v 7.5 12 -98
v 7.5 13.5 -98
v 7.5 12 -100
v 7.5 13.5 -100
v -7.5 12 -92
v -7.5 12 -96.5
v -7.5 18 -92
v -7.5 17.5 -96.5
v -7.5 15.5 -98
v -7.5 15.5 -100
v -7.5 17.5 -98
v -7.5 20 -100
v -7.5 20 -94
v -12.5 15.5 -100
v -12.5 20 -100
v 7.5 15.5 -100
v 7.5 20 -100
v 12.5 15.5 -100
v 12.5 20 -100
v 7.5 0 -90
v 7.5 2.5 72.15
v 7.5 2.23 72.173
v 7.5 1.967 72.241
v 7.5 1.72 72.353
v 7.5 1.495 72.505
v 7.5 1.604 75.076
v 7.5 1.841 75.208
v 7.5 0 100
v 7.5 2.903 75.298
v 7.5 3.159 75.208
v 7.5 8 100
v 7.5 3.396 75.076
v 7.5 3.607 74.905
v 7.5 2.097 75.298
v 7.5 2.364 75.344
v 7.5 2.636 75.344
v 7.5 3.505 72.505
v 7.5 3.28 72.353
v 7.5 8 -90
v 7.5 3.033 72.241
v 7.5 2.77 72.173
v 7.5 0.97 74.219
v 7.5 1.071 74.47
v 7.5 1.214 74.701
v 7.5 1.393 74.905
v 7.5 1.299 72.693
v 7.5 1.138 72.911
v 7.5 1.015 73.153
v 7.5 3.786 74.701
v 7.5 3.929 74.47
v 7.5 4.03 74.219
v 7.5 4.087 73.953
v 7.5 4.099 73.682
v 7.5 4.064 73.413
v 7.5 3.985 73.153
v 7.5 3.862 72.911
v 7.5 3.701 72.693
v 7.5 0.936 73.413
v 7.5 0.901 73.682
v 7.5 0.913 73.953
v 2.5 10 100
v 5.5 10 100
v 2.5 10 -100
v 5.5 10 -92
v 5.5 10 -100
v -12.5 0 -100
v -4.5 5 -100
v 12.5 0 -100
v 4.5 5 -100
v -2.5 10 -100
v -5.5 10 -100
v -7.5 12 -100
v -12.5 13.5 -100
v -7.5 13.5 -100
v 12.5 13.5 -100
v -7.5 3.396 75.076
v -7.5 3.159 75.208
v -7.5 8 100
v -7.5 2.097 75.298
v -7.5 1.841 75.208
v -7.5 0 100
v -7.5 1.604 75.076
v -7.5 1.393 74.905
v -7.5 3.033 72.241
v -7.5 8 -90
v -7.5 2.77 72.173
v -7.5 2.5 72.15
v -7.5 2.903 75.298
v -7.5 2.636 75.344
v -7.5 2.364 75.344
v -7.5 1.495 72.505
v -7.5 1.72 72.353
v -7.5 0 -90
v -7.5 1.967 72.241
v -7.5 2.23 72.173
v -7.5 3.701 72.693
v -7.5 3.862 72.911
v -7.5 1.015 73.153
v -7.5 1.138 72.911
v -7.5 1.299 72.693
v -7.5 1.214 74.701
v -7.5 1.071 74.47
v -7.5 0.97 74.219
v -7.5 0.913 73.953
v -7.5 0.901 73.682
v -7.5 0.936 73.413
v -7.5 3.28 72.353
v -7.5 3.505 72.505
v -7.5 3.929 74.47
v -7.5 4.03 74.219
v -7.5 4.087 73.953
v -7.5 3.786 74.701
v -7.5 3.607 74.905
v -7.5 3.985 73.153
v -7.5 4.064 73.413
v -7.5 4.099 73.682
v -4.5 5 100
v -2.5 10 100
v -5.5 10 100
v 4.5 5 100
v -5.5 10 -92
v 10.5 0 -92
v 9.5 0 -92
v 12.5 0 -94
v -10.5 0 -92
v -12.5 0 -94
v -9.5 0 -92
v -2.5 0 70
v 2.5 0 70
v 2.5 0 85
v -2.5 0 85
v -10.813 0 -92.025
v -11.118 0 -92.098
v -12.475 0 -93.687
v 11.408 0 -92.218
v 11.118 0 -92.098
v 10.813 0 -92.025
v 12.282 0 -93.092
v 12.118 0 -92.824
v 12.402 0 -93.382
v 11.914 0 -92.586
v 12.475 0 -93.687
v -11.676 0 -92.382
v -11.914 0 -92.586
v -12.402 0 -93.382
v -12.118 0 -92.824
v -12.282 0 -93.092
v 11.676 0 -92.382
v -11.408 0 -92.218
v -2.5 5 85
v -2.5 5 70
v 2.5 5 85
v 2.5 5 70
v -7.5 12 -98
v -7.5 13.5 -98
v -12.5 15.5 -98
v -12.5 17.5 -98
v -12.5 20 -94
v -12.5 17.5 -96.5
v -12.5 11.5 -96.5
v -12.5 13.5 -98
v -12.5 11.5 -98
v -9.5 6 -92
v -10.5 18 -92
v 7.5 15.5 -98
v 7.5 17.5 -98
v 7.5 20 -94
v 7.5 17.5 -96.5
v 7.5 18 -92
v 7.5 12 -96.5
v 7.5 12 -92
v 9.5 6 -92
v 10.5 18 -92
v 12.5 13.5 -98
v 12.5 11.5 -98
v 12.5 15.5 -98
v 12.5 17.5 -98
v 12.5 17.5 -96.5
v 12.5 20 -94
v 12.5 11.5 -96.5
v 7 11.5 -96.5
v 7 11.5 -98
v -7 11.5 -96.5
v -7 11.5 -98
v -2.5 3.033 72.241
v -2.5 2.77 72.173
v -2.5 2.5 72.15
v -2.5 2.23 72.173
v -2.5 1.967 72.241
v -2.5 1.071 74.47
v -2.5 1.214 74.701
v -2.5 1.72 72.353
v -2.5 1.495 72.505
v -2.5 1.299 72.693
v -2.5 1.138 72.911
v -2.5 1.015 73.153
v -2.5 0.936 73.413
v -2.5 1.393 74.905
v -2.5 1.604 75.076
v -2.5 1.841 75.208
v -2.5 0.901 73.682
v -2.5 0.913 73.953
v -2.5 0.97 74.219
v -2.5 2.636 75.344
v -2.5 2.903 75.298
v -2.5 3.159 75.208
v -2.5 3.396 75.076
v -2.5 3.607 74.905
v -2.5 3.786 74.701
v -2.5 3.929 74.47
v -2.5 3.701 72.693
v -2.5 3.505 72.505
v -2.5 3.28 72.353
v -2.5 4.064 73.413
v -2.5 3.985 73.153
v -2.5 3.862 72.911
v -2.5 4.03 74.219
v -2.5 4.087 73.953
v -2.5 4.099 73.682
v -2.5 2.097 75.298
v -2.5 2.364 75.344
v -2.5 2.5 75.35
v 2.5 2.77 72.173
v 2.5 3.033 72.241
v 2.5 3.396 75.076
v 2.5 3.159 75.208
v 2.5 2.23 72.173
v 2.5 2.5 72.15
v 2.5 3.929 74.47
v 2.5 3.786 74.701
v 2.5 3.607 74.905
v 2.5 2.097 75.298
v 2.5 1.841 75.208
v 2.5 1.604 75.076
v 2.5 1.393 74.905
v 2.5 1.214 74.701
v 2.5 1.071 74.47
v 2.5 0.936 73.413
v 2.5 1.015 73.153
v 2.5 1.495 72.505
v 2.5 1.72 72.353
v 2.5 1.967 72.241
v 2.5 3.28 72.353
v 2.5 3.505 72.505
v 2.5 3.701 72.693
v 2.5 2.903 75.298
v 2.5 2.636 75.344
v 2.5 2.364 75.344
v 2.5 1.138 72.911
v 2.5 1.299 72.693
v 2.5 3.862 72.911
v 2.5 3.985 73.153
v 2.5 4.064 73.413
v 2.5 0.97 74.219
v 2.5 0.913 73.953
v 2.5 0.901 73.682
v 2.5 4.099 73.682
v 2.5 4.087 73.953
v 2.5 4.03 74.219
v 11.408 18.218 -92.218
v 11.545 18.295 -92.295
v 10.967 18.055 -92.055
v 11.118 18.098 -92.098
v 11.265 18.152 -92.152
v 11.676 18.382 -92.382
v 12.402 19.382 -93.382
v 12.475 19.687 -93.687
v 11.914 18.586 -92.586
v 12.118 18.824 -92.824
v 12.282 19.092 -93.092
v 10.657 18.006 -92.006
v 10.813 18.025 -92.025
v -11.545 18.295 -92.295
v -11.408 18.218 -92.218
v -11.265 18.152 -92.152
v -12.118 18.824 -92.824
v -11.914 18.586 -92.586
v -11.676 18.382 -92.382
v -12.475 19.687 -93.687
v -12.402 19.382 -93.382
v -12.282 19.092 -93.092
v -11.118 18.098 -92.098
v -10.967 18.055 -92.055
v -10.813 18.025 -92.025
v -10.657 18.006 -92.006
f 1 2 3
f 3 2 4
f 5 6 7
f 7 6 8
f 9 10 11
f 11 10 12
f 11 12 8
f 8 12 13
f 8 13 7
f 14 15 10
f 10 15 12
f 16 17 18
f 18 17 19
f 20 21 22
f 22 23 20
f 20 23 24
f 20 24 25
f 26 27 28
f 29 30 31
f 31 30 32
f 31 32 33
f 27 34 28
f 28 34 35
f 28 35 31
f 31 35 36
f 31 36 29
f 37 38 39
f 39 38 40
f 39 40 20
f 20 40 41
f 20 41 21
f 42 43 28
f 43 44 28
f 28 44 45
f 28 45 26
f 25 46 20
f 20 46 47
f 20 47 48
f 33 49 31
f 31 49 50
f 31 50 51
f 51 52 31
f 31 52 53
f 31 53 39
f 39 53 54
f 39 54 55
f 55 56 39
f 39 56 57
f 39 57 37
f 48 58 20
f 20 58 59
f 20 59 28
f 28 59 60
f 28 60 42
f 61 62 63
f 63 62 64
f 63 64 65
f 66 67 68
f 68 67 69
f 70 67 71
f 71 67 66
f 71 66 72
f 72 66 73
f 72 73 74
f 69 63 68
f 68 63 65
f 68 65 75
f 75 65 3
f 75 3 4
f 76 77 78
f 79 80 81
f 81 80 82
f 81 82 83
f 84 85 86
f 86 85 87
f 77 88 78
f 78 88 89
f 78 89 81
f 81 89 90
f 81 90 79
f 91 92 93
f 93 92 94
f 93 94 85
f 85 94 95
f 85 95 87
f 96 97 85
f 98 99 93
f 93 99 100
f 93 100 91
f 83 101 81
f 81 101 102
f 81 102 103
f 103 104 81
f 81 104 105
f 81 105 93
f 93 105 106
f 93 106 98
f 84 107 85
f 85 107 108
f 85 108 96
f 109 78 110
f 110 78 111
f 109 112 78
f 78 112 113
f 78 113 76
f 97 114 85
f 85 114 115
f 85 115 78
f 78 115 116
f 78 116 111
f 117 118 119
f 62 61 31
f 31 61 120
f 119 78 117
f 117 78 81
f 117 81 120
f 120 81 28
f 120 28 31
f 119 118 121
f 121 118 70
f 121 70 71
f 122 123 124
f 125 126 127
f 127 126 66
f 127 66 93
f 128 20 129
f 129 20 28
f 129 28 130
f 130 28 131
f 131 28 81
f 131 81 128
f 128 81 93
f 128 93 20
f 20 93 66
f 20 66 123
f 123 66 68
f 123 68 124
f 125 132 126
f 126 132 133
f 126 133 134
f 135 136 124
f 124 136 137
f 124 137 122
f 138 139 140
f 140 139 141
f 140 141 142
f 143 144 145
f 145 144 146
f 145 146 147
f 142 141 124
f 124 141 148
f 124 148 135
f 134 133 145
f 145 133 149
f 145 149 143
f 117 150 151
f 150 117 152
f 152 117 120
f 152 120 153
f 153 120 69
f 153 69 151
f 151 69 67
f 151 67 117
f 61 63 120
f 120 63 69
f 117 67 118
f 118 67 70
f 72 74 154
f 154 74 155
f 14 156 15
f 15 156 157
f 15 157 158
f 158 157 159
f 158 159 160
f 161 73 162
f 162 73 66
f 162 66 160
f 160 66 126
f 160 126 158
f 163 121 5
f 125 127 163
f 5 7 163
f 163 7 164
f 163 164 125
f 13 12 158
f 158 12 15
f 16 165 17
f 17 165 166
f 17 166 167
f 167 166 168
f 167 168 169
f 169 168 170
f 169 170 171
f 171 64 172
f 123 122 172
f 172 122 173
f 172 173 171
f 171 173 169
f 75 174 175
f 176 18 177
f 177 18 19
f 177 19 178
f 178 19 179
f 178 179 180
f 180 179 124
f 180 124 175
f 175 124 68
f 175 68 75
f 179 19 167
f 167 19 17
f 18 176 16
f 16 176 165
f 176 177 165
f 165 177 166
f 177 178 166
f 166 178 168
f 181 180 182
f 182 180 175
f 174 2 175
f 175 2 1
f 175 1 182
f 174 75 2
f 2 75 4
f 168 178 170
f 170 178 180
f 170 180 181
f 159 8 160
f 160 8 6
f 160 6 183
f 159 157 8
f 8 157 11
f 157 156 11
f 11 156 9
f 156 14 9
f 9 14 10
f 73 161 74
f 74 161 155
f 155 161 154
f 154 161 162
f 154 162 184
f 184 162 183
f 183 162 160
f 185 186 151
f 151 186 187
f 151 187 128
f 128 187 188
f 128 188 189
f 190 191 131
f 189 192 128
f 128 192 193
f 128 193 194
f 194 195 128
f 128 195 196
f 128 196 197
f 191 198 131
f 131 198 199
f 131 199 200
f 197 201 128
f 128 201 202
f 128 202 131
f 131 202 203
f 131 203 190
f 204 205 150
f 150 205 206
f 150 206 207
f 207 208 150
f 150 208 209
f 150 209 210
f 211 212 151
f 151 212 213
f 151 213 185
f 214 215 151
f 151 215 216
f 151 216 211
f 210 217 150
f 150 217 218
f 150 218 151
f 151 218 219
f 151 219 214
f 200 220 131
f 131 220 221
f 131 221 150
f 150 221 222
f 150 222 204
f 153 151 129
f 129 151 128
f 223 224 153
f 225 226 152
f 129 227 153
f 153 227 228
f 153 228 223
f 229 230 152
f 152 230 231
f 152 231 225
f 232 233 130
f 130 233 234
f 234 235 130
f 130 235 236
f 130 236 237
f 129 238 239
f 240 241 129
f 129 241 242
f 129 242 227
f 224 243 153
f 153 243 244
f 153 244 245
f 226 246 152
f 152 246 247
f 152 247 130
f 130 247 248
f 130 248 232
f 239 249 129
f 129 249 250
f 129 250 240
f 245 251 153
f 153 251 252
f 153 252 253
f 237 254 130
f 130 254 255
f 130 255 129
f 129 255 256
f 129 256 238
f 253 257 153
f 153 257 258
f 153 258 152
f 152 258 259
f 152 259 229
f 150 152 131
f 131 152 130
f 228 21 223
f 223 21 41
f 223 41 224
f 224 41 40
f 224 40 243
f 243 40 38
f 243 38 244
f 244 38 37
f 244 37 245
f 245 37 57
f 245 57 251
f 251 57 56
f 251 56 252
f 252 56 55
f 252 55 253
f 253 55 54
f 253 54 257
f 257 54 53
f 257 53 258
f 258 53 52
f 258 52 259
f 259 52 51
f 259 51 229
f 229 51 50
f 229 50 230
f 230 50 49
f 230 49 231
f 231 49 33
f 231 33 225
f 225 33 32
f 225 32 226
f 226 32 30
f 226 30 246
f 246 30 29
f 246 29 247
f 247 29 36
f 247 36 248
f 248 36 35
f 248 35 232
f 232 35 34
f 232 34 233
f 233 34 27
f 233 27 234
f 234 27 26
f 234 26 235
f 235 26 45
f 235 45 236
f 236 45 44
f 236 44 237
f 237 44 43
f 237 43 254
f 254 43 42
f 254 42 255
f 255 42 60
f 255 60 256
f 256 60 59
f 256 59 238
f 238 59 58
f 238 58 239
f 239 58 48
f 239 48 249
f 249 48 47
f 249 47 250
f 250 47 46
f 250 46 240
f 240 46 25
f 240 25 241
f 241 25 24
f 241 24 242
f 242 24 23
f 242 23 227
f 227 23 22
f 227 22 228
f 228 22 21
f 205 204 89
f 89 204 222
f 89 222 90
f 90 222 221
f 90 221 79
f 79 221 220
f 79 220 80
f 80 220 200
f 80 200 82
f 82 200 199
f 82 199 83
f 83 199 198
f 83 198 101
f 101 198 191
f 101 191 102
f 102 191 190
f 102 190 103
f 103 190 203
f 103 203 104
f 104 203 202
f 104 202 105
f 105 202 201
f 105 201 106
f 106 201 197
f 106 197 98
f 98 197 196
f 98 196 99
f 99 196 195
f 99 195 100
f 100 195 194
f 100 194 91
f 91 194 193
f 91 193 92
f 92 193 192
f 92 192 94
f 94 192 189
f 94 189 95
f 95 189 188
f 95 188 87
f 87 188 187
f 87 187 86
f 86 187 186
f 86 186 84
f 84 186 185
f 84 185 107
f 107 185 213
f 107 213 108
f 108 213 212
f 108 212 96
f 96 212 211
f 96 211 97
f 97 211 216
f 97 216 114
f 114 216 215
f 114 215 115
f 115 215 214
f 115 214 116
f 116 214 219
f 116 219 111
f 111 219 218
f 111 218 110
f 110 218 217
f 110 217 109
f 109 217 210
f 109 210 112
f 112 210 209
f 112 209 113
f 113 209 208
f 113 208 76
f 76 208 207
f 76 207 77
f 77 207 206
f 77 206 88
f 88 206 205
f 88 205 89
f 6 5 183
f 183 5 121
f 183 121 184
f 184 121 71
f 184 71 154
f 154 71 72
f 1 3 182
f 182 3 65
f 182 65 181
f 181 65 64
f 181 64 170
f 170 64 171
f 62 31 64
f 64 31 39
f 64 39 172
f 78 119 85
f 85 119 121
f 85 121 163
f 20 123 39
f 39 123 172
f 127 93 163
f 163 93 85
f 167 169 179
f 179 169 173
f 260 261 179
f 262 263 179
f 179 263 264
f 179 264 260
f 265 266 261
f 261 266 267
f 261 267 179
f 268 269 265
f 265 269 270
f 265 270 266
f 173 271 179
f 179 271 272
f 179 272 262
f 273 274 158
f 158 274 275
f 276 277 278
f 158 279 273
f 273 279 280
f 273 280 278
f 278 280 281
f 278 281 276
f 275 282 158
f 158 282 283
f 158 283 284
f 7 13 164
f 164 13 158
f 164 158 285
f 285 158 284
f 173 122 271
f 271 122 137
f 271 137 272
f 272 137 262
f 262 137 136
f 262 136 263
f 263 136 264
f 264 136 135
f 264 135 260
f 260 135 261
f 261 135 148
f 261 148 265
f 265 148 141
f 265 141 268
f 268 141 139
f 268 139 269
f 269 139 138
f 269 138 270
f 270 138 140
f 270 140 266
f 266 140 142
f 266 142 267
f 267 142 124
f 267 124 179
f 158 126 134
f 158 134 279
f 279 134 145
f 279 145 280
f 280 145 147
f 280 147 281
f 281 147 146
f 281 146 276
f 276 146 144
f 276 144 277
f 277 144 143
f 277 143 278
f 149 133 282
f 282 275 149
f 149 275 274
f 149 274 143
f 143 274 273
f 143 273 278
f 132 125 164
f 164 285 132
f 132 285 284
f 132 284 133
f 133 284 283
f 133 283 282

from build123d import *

# Parameters (mm, degrees)
SKETCH1_W           = 15
SKETCH1_H           = 200
BOSS_EXTRUDE1_DEPTH = 10
CUT_EXTRUDE1_DEPTH  = 210
SKETCH3_W           = 5
SKETCH3_H           = 8
BOSS_EXTRUDE2_DEPTH = 20
CUT_EXTRUDE3_DEPTH  = 40
SKETCH6_W           = 5
SKETCH6_H           = 15
CUT_EXTRUDE4_DEPTH  = 40
SKETCH7_R           = 1.6
CUT_EXTRUDE5_DEPTH  = 24
CHAMFER1_SIZE       = 2
CHAMFER2_SIZE       = 2
CHAMFER3_SIZE       = 2
CHAMFER4_SIZE       = 2
FILLET1_R           = 2


with BuildPart() as part:
    # Sketch1 → Boss-Extrude1 (new body)
    with BuildSketch(Plane(origin=(0, 0, 0), x_dir=(1, 0, 0), z_dir=(0, 1, 0))):
        Rectangle(SKETCH1_W, SKETCH1_H)
    extrude(amount=BOSS_EXTRUDE1_DEPTH)

    # Sketch2 → Cut-Extrude1 (cut)
    with BuildSketch(Plane.XY.offset(100)):
        Polygon((-2.5, 10), (-4.5, 5), (4.5, 5), (2.5, 10), align=None)
    extrude(amount=-CUT_EXTRUDE1_DEPTH, mode=Mode.SUBTRACT)

    # Sketch3 → Boss-Extrude2 (add)
    with BuildSketch(Plane.XZ):
        with Locations((-10, -96)):
            Rectangle(SKETCH3_W, SKETCH3_H)
        with Locations((10, -96)):
            Rectangle(SKETCH3_W, SKETCH3_H)
    extrude(amount=-BOSS_EXTRUDE2_DEPTH)

    # Sketch4 → Cut-Extrude3 (cut)
    with BuildSketch(Plane(origin=(12.5, 0, 0), x_dir=(0, 0, -1), z_dir=(1, 0, 0))):
        Polygon((96.5, 17.5), (98, 17.5), (98, 15.5), (100, 15.5), (100, 13.5), (98, 13.5), (98, 11.5), (96.5, 11.5), align=None)
    extrude(amount=-CUT_EXTRUDE3_DEPTH, mode=Mode.SUBTRACT)

    # Sketch6 → Cut-Extrude4 (cut)
    with BuildSketch(Plane(origin=(0, 5, 0), x_dir=(1, 0, 0), z_dir=(0, 1, 0))):
        with Locations((0, -77.5)):
            Rectangle(SKETCH6_W, SKETCH6_H)
    extrude(amount=-CUT_EXTRUDE4_DEPTH, mode=Mode.SUBTRACT)

    # Sketch7 → Cut-Extrude5 (cut)
    with BuildSketch(Plane(origin=(7.5, 0, 0), x_dir=(0, 0, -1), z_dir=(1, 0, 0))):
        with Locations((-73.75, 2.5)):
            Circle(SKETCH7_R)
    extrude(amount=-CUT_EXTRUDE5_DEPTH, mode=Mode.SUBTRACT)

    # Chamfer1
    # the kernel refuses this chamfer: 2 mm, written as the material it adds along each edge
    with BuildSketch(Plane(origin=(-7.5, 10, -100), x_dir=(0.9996219169112968, -0.027495876610586487, 0), z_dir=(0, 0, 1))) as chamfer1_piece_1_section:
        Polygon((CHAMFER1_SIZE * 0.999621916911, CHAMFER1_SIZE * 0.0274958766106), (-CHAMFER1_SIZE * 0.0274958766106, CHAMFER1_SIZE * 0.999621916911), (0, 0), align=None)
    chamfer1_piece_1 = extrude(amount=8, mode=Mode.PRIVATE)
    chamfer1_piece_1 = split(chamfer1_piece_1, bisect_by=Plane(origin=(-6.8, 11.5, -99), z_dir=(0, -1, 0)), keep=Keep.TOP, mode=Mode.PRIVATE)
    add(chamfer1_piece_1)
    with BuildSketch(Plane(origin=(-7.5, 10, -100), x_dir=(0.9996219169112968, -0.027495876610586487, 0), z_dir=(0, 0, 1))) as chamfer1_piece_2_section:
        Polygon((CHAMFER1_SIZE * 0.999621916911, CHAMFER1_SIZE * 0.0274958766106), (-CHAMFER1_SIZE * 0.0274958766106, CHAMFER1_SIZE * 0.999621916911), (0, 0), align=None)
    chamfer1_piece_2 = extrude(amount=13.143365976, mode=Mode.PRIVATE)
    chamfer1_piece_2 = split(chamfer1_piece_2, bisect_by=Plane(origin=(-7.333333333, 11.666666667, -98), z_dir=(0, 0, -1)), keep=Keep.TOP, mode=Mode.PRIVATE)
    add(chamfer1_piece_2)
    with BuildSketch(Plane(origin=(-7.5, 10, -105.143365976), x_dir=(0.9996219169112968, -0.027495876610586487, 0), z_dir=(0, 0, 1))) as chamfer1_piece_3_section:
        Polygon((CHAMFER1_SIZE * 0.999621916911, CHAMFER1_SIZE * 0.0274958766106), (-CHAMFER1_SIZE * 0.0274958766106, CHAMFER1_SIZE * 0.999621916911), (0, 0), align=None)
    chamfer1_piece_3 = extrude(amount=13.143365976, mode=Mode.PRIVATE)
    chamfer1_piece_3 = split(chamfer1_piece_3, bisect_by=Plane(origin=(-7.333333333, 11.666666667, -96.5), z_dir=(0, 0, 1)), keep=Keep.TOP, mode=Mode.PRIVATE)
    add(chamfer1_piece_3)
    with BuildSketch(Plane(origin=(7.5, 10, -92), x_dir=(-0.9996219169112968, -0.027495876610586487, 0), z_dir=(0, 0, -1))) as chamfer1_piece_4_section:
        Polygon((CHAMFER1_SIZE * 0.999621916911, CHAMFER1_SIZE * 0.0274958766106), (-CHAMFER1_SIZE * 0.0274958766106, CHAMFER1_SIZE * 0.999621916911), (0, 0), align=None)
    chamfer1_piece_4 = extrude(amount=8, mode=Mode.PRIVATE)
    chamfer1_piece_4 = split(chamfer1_piece_4, bisect_by=Plane(origin=(6.8, 11.5, -94.25), z_dir=(0, -1, 0)), keep=Keep.TOP, mode=Mode.PRIVATE)
    add(chamfer1_piece_4)
    with BuildSketch(Plane(origin=(7.5, 10, -92), x_dir=(-0.9996219169112968, -0.027495876610586487, 0), z_dir=(0, 0, -1))) as chamfer1_piece_5_section:
        Polygon((CHAMFER1_SIZE * 0.999621916911, CHAMFER1_SIZE * 0.0274958766106), (-CHAMFER1_SIZE * 0.0274958766106, CHAMFER1_SIZE * 0.999621916911), (0, 0), align=None)
    chamfer1_piece_5 = extrude(amount=13.143365976, mode=Mode.PRIVATE)
    chamfer1_piece_5 = split(chamfer1_piece_5, bisect_by=Plane(origin=(7.333333333, 11.666666667, -96.5), z_dir=(0, 0, 1)), keep=Keep.TOP, mode=Mode.PRIVATE)
    add(chamfer1_piece_5)
    with BuildSketch(Plane(origin=(7.5, 10, -86.856634024), x_dir=(-0.9996219169112968, -0.027495876610586487, 0), z_dir=(0, 0, -1))) as chamfer1_piece_6_section:
        Polygon((CHAMFER1_SIZE * 0.999621916911, CHAMFER1_SIZE * 0.0274958766106), (-CHAMFER1_SIZE * 0.0274958766106, CHAMFER1_SIZE * 0.999621916911), (0, 0), align=None)
    chamfer1_piece_6 = extrude(amount=13.143365976, mode=Mode.PRIVATE)
    chamfer1_piece_6 = split(chamfer1_piece_6, bisect_by=Plane(origin=(7.333333333, 11.666666667, -98), z_dir=(0, 0, -1)), keep=Keep.TOP, mode=Mode.PRIVATE)
    add(chamfer1_piece_6)

    # Chamfer2
    chamfer2_edges = [part.edges().sort_by_distance(p)[0] for p in [
        (7.5, 10, 4),
        (-7.5, 10, 4),
    ]]
    chamfer(chamfer2_edges, length=CHAMFER2_SIZE)

    # Chamfer3
    chamfer3_edges = [part.edges().sort_by_distance(p)[0] for p in [
        (7.5, 4, -92),
        (-7.5, 4, -92),
    ]]
    chamfer(chamfer3_edges, length=CHAMFER3_SIZE)

    # Chamfer4
    chamfer4_edges = [part.edges().sort_by_distance(p)[0] for p in [
        (-10, 20, -92),
        (10, 20, -92),
    ]]
    chamfer(chamfer4_edges, length=CHAMFER4_SIZE)

    # Fillet1
    fillet1_edges = [part.edges().sort_by_distance(p)[0] for p in [
        (12.5, 9, -92),
        (-12.5, 9, -92),
    ]]
    fillet(fillet1_edges, radius=FILLET1_R)


solid = part.part
